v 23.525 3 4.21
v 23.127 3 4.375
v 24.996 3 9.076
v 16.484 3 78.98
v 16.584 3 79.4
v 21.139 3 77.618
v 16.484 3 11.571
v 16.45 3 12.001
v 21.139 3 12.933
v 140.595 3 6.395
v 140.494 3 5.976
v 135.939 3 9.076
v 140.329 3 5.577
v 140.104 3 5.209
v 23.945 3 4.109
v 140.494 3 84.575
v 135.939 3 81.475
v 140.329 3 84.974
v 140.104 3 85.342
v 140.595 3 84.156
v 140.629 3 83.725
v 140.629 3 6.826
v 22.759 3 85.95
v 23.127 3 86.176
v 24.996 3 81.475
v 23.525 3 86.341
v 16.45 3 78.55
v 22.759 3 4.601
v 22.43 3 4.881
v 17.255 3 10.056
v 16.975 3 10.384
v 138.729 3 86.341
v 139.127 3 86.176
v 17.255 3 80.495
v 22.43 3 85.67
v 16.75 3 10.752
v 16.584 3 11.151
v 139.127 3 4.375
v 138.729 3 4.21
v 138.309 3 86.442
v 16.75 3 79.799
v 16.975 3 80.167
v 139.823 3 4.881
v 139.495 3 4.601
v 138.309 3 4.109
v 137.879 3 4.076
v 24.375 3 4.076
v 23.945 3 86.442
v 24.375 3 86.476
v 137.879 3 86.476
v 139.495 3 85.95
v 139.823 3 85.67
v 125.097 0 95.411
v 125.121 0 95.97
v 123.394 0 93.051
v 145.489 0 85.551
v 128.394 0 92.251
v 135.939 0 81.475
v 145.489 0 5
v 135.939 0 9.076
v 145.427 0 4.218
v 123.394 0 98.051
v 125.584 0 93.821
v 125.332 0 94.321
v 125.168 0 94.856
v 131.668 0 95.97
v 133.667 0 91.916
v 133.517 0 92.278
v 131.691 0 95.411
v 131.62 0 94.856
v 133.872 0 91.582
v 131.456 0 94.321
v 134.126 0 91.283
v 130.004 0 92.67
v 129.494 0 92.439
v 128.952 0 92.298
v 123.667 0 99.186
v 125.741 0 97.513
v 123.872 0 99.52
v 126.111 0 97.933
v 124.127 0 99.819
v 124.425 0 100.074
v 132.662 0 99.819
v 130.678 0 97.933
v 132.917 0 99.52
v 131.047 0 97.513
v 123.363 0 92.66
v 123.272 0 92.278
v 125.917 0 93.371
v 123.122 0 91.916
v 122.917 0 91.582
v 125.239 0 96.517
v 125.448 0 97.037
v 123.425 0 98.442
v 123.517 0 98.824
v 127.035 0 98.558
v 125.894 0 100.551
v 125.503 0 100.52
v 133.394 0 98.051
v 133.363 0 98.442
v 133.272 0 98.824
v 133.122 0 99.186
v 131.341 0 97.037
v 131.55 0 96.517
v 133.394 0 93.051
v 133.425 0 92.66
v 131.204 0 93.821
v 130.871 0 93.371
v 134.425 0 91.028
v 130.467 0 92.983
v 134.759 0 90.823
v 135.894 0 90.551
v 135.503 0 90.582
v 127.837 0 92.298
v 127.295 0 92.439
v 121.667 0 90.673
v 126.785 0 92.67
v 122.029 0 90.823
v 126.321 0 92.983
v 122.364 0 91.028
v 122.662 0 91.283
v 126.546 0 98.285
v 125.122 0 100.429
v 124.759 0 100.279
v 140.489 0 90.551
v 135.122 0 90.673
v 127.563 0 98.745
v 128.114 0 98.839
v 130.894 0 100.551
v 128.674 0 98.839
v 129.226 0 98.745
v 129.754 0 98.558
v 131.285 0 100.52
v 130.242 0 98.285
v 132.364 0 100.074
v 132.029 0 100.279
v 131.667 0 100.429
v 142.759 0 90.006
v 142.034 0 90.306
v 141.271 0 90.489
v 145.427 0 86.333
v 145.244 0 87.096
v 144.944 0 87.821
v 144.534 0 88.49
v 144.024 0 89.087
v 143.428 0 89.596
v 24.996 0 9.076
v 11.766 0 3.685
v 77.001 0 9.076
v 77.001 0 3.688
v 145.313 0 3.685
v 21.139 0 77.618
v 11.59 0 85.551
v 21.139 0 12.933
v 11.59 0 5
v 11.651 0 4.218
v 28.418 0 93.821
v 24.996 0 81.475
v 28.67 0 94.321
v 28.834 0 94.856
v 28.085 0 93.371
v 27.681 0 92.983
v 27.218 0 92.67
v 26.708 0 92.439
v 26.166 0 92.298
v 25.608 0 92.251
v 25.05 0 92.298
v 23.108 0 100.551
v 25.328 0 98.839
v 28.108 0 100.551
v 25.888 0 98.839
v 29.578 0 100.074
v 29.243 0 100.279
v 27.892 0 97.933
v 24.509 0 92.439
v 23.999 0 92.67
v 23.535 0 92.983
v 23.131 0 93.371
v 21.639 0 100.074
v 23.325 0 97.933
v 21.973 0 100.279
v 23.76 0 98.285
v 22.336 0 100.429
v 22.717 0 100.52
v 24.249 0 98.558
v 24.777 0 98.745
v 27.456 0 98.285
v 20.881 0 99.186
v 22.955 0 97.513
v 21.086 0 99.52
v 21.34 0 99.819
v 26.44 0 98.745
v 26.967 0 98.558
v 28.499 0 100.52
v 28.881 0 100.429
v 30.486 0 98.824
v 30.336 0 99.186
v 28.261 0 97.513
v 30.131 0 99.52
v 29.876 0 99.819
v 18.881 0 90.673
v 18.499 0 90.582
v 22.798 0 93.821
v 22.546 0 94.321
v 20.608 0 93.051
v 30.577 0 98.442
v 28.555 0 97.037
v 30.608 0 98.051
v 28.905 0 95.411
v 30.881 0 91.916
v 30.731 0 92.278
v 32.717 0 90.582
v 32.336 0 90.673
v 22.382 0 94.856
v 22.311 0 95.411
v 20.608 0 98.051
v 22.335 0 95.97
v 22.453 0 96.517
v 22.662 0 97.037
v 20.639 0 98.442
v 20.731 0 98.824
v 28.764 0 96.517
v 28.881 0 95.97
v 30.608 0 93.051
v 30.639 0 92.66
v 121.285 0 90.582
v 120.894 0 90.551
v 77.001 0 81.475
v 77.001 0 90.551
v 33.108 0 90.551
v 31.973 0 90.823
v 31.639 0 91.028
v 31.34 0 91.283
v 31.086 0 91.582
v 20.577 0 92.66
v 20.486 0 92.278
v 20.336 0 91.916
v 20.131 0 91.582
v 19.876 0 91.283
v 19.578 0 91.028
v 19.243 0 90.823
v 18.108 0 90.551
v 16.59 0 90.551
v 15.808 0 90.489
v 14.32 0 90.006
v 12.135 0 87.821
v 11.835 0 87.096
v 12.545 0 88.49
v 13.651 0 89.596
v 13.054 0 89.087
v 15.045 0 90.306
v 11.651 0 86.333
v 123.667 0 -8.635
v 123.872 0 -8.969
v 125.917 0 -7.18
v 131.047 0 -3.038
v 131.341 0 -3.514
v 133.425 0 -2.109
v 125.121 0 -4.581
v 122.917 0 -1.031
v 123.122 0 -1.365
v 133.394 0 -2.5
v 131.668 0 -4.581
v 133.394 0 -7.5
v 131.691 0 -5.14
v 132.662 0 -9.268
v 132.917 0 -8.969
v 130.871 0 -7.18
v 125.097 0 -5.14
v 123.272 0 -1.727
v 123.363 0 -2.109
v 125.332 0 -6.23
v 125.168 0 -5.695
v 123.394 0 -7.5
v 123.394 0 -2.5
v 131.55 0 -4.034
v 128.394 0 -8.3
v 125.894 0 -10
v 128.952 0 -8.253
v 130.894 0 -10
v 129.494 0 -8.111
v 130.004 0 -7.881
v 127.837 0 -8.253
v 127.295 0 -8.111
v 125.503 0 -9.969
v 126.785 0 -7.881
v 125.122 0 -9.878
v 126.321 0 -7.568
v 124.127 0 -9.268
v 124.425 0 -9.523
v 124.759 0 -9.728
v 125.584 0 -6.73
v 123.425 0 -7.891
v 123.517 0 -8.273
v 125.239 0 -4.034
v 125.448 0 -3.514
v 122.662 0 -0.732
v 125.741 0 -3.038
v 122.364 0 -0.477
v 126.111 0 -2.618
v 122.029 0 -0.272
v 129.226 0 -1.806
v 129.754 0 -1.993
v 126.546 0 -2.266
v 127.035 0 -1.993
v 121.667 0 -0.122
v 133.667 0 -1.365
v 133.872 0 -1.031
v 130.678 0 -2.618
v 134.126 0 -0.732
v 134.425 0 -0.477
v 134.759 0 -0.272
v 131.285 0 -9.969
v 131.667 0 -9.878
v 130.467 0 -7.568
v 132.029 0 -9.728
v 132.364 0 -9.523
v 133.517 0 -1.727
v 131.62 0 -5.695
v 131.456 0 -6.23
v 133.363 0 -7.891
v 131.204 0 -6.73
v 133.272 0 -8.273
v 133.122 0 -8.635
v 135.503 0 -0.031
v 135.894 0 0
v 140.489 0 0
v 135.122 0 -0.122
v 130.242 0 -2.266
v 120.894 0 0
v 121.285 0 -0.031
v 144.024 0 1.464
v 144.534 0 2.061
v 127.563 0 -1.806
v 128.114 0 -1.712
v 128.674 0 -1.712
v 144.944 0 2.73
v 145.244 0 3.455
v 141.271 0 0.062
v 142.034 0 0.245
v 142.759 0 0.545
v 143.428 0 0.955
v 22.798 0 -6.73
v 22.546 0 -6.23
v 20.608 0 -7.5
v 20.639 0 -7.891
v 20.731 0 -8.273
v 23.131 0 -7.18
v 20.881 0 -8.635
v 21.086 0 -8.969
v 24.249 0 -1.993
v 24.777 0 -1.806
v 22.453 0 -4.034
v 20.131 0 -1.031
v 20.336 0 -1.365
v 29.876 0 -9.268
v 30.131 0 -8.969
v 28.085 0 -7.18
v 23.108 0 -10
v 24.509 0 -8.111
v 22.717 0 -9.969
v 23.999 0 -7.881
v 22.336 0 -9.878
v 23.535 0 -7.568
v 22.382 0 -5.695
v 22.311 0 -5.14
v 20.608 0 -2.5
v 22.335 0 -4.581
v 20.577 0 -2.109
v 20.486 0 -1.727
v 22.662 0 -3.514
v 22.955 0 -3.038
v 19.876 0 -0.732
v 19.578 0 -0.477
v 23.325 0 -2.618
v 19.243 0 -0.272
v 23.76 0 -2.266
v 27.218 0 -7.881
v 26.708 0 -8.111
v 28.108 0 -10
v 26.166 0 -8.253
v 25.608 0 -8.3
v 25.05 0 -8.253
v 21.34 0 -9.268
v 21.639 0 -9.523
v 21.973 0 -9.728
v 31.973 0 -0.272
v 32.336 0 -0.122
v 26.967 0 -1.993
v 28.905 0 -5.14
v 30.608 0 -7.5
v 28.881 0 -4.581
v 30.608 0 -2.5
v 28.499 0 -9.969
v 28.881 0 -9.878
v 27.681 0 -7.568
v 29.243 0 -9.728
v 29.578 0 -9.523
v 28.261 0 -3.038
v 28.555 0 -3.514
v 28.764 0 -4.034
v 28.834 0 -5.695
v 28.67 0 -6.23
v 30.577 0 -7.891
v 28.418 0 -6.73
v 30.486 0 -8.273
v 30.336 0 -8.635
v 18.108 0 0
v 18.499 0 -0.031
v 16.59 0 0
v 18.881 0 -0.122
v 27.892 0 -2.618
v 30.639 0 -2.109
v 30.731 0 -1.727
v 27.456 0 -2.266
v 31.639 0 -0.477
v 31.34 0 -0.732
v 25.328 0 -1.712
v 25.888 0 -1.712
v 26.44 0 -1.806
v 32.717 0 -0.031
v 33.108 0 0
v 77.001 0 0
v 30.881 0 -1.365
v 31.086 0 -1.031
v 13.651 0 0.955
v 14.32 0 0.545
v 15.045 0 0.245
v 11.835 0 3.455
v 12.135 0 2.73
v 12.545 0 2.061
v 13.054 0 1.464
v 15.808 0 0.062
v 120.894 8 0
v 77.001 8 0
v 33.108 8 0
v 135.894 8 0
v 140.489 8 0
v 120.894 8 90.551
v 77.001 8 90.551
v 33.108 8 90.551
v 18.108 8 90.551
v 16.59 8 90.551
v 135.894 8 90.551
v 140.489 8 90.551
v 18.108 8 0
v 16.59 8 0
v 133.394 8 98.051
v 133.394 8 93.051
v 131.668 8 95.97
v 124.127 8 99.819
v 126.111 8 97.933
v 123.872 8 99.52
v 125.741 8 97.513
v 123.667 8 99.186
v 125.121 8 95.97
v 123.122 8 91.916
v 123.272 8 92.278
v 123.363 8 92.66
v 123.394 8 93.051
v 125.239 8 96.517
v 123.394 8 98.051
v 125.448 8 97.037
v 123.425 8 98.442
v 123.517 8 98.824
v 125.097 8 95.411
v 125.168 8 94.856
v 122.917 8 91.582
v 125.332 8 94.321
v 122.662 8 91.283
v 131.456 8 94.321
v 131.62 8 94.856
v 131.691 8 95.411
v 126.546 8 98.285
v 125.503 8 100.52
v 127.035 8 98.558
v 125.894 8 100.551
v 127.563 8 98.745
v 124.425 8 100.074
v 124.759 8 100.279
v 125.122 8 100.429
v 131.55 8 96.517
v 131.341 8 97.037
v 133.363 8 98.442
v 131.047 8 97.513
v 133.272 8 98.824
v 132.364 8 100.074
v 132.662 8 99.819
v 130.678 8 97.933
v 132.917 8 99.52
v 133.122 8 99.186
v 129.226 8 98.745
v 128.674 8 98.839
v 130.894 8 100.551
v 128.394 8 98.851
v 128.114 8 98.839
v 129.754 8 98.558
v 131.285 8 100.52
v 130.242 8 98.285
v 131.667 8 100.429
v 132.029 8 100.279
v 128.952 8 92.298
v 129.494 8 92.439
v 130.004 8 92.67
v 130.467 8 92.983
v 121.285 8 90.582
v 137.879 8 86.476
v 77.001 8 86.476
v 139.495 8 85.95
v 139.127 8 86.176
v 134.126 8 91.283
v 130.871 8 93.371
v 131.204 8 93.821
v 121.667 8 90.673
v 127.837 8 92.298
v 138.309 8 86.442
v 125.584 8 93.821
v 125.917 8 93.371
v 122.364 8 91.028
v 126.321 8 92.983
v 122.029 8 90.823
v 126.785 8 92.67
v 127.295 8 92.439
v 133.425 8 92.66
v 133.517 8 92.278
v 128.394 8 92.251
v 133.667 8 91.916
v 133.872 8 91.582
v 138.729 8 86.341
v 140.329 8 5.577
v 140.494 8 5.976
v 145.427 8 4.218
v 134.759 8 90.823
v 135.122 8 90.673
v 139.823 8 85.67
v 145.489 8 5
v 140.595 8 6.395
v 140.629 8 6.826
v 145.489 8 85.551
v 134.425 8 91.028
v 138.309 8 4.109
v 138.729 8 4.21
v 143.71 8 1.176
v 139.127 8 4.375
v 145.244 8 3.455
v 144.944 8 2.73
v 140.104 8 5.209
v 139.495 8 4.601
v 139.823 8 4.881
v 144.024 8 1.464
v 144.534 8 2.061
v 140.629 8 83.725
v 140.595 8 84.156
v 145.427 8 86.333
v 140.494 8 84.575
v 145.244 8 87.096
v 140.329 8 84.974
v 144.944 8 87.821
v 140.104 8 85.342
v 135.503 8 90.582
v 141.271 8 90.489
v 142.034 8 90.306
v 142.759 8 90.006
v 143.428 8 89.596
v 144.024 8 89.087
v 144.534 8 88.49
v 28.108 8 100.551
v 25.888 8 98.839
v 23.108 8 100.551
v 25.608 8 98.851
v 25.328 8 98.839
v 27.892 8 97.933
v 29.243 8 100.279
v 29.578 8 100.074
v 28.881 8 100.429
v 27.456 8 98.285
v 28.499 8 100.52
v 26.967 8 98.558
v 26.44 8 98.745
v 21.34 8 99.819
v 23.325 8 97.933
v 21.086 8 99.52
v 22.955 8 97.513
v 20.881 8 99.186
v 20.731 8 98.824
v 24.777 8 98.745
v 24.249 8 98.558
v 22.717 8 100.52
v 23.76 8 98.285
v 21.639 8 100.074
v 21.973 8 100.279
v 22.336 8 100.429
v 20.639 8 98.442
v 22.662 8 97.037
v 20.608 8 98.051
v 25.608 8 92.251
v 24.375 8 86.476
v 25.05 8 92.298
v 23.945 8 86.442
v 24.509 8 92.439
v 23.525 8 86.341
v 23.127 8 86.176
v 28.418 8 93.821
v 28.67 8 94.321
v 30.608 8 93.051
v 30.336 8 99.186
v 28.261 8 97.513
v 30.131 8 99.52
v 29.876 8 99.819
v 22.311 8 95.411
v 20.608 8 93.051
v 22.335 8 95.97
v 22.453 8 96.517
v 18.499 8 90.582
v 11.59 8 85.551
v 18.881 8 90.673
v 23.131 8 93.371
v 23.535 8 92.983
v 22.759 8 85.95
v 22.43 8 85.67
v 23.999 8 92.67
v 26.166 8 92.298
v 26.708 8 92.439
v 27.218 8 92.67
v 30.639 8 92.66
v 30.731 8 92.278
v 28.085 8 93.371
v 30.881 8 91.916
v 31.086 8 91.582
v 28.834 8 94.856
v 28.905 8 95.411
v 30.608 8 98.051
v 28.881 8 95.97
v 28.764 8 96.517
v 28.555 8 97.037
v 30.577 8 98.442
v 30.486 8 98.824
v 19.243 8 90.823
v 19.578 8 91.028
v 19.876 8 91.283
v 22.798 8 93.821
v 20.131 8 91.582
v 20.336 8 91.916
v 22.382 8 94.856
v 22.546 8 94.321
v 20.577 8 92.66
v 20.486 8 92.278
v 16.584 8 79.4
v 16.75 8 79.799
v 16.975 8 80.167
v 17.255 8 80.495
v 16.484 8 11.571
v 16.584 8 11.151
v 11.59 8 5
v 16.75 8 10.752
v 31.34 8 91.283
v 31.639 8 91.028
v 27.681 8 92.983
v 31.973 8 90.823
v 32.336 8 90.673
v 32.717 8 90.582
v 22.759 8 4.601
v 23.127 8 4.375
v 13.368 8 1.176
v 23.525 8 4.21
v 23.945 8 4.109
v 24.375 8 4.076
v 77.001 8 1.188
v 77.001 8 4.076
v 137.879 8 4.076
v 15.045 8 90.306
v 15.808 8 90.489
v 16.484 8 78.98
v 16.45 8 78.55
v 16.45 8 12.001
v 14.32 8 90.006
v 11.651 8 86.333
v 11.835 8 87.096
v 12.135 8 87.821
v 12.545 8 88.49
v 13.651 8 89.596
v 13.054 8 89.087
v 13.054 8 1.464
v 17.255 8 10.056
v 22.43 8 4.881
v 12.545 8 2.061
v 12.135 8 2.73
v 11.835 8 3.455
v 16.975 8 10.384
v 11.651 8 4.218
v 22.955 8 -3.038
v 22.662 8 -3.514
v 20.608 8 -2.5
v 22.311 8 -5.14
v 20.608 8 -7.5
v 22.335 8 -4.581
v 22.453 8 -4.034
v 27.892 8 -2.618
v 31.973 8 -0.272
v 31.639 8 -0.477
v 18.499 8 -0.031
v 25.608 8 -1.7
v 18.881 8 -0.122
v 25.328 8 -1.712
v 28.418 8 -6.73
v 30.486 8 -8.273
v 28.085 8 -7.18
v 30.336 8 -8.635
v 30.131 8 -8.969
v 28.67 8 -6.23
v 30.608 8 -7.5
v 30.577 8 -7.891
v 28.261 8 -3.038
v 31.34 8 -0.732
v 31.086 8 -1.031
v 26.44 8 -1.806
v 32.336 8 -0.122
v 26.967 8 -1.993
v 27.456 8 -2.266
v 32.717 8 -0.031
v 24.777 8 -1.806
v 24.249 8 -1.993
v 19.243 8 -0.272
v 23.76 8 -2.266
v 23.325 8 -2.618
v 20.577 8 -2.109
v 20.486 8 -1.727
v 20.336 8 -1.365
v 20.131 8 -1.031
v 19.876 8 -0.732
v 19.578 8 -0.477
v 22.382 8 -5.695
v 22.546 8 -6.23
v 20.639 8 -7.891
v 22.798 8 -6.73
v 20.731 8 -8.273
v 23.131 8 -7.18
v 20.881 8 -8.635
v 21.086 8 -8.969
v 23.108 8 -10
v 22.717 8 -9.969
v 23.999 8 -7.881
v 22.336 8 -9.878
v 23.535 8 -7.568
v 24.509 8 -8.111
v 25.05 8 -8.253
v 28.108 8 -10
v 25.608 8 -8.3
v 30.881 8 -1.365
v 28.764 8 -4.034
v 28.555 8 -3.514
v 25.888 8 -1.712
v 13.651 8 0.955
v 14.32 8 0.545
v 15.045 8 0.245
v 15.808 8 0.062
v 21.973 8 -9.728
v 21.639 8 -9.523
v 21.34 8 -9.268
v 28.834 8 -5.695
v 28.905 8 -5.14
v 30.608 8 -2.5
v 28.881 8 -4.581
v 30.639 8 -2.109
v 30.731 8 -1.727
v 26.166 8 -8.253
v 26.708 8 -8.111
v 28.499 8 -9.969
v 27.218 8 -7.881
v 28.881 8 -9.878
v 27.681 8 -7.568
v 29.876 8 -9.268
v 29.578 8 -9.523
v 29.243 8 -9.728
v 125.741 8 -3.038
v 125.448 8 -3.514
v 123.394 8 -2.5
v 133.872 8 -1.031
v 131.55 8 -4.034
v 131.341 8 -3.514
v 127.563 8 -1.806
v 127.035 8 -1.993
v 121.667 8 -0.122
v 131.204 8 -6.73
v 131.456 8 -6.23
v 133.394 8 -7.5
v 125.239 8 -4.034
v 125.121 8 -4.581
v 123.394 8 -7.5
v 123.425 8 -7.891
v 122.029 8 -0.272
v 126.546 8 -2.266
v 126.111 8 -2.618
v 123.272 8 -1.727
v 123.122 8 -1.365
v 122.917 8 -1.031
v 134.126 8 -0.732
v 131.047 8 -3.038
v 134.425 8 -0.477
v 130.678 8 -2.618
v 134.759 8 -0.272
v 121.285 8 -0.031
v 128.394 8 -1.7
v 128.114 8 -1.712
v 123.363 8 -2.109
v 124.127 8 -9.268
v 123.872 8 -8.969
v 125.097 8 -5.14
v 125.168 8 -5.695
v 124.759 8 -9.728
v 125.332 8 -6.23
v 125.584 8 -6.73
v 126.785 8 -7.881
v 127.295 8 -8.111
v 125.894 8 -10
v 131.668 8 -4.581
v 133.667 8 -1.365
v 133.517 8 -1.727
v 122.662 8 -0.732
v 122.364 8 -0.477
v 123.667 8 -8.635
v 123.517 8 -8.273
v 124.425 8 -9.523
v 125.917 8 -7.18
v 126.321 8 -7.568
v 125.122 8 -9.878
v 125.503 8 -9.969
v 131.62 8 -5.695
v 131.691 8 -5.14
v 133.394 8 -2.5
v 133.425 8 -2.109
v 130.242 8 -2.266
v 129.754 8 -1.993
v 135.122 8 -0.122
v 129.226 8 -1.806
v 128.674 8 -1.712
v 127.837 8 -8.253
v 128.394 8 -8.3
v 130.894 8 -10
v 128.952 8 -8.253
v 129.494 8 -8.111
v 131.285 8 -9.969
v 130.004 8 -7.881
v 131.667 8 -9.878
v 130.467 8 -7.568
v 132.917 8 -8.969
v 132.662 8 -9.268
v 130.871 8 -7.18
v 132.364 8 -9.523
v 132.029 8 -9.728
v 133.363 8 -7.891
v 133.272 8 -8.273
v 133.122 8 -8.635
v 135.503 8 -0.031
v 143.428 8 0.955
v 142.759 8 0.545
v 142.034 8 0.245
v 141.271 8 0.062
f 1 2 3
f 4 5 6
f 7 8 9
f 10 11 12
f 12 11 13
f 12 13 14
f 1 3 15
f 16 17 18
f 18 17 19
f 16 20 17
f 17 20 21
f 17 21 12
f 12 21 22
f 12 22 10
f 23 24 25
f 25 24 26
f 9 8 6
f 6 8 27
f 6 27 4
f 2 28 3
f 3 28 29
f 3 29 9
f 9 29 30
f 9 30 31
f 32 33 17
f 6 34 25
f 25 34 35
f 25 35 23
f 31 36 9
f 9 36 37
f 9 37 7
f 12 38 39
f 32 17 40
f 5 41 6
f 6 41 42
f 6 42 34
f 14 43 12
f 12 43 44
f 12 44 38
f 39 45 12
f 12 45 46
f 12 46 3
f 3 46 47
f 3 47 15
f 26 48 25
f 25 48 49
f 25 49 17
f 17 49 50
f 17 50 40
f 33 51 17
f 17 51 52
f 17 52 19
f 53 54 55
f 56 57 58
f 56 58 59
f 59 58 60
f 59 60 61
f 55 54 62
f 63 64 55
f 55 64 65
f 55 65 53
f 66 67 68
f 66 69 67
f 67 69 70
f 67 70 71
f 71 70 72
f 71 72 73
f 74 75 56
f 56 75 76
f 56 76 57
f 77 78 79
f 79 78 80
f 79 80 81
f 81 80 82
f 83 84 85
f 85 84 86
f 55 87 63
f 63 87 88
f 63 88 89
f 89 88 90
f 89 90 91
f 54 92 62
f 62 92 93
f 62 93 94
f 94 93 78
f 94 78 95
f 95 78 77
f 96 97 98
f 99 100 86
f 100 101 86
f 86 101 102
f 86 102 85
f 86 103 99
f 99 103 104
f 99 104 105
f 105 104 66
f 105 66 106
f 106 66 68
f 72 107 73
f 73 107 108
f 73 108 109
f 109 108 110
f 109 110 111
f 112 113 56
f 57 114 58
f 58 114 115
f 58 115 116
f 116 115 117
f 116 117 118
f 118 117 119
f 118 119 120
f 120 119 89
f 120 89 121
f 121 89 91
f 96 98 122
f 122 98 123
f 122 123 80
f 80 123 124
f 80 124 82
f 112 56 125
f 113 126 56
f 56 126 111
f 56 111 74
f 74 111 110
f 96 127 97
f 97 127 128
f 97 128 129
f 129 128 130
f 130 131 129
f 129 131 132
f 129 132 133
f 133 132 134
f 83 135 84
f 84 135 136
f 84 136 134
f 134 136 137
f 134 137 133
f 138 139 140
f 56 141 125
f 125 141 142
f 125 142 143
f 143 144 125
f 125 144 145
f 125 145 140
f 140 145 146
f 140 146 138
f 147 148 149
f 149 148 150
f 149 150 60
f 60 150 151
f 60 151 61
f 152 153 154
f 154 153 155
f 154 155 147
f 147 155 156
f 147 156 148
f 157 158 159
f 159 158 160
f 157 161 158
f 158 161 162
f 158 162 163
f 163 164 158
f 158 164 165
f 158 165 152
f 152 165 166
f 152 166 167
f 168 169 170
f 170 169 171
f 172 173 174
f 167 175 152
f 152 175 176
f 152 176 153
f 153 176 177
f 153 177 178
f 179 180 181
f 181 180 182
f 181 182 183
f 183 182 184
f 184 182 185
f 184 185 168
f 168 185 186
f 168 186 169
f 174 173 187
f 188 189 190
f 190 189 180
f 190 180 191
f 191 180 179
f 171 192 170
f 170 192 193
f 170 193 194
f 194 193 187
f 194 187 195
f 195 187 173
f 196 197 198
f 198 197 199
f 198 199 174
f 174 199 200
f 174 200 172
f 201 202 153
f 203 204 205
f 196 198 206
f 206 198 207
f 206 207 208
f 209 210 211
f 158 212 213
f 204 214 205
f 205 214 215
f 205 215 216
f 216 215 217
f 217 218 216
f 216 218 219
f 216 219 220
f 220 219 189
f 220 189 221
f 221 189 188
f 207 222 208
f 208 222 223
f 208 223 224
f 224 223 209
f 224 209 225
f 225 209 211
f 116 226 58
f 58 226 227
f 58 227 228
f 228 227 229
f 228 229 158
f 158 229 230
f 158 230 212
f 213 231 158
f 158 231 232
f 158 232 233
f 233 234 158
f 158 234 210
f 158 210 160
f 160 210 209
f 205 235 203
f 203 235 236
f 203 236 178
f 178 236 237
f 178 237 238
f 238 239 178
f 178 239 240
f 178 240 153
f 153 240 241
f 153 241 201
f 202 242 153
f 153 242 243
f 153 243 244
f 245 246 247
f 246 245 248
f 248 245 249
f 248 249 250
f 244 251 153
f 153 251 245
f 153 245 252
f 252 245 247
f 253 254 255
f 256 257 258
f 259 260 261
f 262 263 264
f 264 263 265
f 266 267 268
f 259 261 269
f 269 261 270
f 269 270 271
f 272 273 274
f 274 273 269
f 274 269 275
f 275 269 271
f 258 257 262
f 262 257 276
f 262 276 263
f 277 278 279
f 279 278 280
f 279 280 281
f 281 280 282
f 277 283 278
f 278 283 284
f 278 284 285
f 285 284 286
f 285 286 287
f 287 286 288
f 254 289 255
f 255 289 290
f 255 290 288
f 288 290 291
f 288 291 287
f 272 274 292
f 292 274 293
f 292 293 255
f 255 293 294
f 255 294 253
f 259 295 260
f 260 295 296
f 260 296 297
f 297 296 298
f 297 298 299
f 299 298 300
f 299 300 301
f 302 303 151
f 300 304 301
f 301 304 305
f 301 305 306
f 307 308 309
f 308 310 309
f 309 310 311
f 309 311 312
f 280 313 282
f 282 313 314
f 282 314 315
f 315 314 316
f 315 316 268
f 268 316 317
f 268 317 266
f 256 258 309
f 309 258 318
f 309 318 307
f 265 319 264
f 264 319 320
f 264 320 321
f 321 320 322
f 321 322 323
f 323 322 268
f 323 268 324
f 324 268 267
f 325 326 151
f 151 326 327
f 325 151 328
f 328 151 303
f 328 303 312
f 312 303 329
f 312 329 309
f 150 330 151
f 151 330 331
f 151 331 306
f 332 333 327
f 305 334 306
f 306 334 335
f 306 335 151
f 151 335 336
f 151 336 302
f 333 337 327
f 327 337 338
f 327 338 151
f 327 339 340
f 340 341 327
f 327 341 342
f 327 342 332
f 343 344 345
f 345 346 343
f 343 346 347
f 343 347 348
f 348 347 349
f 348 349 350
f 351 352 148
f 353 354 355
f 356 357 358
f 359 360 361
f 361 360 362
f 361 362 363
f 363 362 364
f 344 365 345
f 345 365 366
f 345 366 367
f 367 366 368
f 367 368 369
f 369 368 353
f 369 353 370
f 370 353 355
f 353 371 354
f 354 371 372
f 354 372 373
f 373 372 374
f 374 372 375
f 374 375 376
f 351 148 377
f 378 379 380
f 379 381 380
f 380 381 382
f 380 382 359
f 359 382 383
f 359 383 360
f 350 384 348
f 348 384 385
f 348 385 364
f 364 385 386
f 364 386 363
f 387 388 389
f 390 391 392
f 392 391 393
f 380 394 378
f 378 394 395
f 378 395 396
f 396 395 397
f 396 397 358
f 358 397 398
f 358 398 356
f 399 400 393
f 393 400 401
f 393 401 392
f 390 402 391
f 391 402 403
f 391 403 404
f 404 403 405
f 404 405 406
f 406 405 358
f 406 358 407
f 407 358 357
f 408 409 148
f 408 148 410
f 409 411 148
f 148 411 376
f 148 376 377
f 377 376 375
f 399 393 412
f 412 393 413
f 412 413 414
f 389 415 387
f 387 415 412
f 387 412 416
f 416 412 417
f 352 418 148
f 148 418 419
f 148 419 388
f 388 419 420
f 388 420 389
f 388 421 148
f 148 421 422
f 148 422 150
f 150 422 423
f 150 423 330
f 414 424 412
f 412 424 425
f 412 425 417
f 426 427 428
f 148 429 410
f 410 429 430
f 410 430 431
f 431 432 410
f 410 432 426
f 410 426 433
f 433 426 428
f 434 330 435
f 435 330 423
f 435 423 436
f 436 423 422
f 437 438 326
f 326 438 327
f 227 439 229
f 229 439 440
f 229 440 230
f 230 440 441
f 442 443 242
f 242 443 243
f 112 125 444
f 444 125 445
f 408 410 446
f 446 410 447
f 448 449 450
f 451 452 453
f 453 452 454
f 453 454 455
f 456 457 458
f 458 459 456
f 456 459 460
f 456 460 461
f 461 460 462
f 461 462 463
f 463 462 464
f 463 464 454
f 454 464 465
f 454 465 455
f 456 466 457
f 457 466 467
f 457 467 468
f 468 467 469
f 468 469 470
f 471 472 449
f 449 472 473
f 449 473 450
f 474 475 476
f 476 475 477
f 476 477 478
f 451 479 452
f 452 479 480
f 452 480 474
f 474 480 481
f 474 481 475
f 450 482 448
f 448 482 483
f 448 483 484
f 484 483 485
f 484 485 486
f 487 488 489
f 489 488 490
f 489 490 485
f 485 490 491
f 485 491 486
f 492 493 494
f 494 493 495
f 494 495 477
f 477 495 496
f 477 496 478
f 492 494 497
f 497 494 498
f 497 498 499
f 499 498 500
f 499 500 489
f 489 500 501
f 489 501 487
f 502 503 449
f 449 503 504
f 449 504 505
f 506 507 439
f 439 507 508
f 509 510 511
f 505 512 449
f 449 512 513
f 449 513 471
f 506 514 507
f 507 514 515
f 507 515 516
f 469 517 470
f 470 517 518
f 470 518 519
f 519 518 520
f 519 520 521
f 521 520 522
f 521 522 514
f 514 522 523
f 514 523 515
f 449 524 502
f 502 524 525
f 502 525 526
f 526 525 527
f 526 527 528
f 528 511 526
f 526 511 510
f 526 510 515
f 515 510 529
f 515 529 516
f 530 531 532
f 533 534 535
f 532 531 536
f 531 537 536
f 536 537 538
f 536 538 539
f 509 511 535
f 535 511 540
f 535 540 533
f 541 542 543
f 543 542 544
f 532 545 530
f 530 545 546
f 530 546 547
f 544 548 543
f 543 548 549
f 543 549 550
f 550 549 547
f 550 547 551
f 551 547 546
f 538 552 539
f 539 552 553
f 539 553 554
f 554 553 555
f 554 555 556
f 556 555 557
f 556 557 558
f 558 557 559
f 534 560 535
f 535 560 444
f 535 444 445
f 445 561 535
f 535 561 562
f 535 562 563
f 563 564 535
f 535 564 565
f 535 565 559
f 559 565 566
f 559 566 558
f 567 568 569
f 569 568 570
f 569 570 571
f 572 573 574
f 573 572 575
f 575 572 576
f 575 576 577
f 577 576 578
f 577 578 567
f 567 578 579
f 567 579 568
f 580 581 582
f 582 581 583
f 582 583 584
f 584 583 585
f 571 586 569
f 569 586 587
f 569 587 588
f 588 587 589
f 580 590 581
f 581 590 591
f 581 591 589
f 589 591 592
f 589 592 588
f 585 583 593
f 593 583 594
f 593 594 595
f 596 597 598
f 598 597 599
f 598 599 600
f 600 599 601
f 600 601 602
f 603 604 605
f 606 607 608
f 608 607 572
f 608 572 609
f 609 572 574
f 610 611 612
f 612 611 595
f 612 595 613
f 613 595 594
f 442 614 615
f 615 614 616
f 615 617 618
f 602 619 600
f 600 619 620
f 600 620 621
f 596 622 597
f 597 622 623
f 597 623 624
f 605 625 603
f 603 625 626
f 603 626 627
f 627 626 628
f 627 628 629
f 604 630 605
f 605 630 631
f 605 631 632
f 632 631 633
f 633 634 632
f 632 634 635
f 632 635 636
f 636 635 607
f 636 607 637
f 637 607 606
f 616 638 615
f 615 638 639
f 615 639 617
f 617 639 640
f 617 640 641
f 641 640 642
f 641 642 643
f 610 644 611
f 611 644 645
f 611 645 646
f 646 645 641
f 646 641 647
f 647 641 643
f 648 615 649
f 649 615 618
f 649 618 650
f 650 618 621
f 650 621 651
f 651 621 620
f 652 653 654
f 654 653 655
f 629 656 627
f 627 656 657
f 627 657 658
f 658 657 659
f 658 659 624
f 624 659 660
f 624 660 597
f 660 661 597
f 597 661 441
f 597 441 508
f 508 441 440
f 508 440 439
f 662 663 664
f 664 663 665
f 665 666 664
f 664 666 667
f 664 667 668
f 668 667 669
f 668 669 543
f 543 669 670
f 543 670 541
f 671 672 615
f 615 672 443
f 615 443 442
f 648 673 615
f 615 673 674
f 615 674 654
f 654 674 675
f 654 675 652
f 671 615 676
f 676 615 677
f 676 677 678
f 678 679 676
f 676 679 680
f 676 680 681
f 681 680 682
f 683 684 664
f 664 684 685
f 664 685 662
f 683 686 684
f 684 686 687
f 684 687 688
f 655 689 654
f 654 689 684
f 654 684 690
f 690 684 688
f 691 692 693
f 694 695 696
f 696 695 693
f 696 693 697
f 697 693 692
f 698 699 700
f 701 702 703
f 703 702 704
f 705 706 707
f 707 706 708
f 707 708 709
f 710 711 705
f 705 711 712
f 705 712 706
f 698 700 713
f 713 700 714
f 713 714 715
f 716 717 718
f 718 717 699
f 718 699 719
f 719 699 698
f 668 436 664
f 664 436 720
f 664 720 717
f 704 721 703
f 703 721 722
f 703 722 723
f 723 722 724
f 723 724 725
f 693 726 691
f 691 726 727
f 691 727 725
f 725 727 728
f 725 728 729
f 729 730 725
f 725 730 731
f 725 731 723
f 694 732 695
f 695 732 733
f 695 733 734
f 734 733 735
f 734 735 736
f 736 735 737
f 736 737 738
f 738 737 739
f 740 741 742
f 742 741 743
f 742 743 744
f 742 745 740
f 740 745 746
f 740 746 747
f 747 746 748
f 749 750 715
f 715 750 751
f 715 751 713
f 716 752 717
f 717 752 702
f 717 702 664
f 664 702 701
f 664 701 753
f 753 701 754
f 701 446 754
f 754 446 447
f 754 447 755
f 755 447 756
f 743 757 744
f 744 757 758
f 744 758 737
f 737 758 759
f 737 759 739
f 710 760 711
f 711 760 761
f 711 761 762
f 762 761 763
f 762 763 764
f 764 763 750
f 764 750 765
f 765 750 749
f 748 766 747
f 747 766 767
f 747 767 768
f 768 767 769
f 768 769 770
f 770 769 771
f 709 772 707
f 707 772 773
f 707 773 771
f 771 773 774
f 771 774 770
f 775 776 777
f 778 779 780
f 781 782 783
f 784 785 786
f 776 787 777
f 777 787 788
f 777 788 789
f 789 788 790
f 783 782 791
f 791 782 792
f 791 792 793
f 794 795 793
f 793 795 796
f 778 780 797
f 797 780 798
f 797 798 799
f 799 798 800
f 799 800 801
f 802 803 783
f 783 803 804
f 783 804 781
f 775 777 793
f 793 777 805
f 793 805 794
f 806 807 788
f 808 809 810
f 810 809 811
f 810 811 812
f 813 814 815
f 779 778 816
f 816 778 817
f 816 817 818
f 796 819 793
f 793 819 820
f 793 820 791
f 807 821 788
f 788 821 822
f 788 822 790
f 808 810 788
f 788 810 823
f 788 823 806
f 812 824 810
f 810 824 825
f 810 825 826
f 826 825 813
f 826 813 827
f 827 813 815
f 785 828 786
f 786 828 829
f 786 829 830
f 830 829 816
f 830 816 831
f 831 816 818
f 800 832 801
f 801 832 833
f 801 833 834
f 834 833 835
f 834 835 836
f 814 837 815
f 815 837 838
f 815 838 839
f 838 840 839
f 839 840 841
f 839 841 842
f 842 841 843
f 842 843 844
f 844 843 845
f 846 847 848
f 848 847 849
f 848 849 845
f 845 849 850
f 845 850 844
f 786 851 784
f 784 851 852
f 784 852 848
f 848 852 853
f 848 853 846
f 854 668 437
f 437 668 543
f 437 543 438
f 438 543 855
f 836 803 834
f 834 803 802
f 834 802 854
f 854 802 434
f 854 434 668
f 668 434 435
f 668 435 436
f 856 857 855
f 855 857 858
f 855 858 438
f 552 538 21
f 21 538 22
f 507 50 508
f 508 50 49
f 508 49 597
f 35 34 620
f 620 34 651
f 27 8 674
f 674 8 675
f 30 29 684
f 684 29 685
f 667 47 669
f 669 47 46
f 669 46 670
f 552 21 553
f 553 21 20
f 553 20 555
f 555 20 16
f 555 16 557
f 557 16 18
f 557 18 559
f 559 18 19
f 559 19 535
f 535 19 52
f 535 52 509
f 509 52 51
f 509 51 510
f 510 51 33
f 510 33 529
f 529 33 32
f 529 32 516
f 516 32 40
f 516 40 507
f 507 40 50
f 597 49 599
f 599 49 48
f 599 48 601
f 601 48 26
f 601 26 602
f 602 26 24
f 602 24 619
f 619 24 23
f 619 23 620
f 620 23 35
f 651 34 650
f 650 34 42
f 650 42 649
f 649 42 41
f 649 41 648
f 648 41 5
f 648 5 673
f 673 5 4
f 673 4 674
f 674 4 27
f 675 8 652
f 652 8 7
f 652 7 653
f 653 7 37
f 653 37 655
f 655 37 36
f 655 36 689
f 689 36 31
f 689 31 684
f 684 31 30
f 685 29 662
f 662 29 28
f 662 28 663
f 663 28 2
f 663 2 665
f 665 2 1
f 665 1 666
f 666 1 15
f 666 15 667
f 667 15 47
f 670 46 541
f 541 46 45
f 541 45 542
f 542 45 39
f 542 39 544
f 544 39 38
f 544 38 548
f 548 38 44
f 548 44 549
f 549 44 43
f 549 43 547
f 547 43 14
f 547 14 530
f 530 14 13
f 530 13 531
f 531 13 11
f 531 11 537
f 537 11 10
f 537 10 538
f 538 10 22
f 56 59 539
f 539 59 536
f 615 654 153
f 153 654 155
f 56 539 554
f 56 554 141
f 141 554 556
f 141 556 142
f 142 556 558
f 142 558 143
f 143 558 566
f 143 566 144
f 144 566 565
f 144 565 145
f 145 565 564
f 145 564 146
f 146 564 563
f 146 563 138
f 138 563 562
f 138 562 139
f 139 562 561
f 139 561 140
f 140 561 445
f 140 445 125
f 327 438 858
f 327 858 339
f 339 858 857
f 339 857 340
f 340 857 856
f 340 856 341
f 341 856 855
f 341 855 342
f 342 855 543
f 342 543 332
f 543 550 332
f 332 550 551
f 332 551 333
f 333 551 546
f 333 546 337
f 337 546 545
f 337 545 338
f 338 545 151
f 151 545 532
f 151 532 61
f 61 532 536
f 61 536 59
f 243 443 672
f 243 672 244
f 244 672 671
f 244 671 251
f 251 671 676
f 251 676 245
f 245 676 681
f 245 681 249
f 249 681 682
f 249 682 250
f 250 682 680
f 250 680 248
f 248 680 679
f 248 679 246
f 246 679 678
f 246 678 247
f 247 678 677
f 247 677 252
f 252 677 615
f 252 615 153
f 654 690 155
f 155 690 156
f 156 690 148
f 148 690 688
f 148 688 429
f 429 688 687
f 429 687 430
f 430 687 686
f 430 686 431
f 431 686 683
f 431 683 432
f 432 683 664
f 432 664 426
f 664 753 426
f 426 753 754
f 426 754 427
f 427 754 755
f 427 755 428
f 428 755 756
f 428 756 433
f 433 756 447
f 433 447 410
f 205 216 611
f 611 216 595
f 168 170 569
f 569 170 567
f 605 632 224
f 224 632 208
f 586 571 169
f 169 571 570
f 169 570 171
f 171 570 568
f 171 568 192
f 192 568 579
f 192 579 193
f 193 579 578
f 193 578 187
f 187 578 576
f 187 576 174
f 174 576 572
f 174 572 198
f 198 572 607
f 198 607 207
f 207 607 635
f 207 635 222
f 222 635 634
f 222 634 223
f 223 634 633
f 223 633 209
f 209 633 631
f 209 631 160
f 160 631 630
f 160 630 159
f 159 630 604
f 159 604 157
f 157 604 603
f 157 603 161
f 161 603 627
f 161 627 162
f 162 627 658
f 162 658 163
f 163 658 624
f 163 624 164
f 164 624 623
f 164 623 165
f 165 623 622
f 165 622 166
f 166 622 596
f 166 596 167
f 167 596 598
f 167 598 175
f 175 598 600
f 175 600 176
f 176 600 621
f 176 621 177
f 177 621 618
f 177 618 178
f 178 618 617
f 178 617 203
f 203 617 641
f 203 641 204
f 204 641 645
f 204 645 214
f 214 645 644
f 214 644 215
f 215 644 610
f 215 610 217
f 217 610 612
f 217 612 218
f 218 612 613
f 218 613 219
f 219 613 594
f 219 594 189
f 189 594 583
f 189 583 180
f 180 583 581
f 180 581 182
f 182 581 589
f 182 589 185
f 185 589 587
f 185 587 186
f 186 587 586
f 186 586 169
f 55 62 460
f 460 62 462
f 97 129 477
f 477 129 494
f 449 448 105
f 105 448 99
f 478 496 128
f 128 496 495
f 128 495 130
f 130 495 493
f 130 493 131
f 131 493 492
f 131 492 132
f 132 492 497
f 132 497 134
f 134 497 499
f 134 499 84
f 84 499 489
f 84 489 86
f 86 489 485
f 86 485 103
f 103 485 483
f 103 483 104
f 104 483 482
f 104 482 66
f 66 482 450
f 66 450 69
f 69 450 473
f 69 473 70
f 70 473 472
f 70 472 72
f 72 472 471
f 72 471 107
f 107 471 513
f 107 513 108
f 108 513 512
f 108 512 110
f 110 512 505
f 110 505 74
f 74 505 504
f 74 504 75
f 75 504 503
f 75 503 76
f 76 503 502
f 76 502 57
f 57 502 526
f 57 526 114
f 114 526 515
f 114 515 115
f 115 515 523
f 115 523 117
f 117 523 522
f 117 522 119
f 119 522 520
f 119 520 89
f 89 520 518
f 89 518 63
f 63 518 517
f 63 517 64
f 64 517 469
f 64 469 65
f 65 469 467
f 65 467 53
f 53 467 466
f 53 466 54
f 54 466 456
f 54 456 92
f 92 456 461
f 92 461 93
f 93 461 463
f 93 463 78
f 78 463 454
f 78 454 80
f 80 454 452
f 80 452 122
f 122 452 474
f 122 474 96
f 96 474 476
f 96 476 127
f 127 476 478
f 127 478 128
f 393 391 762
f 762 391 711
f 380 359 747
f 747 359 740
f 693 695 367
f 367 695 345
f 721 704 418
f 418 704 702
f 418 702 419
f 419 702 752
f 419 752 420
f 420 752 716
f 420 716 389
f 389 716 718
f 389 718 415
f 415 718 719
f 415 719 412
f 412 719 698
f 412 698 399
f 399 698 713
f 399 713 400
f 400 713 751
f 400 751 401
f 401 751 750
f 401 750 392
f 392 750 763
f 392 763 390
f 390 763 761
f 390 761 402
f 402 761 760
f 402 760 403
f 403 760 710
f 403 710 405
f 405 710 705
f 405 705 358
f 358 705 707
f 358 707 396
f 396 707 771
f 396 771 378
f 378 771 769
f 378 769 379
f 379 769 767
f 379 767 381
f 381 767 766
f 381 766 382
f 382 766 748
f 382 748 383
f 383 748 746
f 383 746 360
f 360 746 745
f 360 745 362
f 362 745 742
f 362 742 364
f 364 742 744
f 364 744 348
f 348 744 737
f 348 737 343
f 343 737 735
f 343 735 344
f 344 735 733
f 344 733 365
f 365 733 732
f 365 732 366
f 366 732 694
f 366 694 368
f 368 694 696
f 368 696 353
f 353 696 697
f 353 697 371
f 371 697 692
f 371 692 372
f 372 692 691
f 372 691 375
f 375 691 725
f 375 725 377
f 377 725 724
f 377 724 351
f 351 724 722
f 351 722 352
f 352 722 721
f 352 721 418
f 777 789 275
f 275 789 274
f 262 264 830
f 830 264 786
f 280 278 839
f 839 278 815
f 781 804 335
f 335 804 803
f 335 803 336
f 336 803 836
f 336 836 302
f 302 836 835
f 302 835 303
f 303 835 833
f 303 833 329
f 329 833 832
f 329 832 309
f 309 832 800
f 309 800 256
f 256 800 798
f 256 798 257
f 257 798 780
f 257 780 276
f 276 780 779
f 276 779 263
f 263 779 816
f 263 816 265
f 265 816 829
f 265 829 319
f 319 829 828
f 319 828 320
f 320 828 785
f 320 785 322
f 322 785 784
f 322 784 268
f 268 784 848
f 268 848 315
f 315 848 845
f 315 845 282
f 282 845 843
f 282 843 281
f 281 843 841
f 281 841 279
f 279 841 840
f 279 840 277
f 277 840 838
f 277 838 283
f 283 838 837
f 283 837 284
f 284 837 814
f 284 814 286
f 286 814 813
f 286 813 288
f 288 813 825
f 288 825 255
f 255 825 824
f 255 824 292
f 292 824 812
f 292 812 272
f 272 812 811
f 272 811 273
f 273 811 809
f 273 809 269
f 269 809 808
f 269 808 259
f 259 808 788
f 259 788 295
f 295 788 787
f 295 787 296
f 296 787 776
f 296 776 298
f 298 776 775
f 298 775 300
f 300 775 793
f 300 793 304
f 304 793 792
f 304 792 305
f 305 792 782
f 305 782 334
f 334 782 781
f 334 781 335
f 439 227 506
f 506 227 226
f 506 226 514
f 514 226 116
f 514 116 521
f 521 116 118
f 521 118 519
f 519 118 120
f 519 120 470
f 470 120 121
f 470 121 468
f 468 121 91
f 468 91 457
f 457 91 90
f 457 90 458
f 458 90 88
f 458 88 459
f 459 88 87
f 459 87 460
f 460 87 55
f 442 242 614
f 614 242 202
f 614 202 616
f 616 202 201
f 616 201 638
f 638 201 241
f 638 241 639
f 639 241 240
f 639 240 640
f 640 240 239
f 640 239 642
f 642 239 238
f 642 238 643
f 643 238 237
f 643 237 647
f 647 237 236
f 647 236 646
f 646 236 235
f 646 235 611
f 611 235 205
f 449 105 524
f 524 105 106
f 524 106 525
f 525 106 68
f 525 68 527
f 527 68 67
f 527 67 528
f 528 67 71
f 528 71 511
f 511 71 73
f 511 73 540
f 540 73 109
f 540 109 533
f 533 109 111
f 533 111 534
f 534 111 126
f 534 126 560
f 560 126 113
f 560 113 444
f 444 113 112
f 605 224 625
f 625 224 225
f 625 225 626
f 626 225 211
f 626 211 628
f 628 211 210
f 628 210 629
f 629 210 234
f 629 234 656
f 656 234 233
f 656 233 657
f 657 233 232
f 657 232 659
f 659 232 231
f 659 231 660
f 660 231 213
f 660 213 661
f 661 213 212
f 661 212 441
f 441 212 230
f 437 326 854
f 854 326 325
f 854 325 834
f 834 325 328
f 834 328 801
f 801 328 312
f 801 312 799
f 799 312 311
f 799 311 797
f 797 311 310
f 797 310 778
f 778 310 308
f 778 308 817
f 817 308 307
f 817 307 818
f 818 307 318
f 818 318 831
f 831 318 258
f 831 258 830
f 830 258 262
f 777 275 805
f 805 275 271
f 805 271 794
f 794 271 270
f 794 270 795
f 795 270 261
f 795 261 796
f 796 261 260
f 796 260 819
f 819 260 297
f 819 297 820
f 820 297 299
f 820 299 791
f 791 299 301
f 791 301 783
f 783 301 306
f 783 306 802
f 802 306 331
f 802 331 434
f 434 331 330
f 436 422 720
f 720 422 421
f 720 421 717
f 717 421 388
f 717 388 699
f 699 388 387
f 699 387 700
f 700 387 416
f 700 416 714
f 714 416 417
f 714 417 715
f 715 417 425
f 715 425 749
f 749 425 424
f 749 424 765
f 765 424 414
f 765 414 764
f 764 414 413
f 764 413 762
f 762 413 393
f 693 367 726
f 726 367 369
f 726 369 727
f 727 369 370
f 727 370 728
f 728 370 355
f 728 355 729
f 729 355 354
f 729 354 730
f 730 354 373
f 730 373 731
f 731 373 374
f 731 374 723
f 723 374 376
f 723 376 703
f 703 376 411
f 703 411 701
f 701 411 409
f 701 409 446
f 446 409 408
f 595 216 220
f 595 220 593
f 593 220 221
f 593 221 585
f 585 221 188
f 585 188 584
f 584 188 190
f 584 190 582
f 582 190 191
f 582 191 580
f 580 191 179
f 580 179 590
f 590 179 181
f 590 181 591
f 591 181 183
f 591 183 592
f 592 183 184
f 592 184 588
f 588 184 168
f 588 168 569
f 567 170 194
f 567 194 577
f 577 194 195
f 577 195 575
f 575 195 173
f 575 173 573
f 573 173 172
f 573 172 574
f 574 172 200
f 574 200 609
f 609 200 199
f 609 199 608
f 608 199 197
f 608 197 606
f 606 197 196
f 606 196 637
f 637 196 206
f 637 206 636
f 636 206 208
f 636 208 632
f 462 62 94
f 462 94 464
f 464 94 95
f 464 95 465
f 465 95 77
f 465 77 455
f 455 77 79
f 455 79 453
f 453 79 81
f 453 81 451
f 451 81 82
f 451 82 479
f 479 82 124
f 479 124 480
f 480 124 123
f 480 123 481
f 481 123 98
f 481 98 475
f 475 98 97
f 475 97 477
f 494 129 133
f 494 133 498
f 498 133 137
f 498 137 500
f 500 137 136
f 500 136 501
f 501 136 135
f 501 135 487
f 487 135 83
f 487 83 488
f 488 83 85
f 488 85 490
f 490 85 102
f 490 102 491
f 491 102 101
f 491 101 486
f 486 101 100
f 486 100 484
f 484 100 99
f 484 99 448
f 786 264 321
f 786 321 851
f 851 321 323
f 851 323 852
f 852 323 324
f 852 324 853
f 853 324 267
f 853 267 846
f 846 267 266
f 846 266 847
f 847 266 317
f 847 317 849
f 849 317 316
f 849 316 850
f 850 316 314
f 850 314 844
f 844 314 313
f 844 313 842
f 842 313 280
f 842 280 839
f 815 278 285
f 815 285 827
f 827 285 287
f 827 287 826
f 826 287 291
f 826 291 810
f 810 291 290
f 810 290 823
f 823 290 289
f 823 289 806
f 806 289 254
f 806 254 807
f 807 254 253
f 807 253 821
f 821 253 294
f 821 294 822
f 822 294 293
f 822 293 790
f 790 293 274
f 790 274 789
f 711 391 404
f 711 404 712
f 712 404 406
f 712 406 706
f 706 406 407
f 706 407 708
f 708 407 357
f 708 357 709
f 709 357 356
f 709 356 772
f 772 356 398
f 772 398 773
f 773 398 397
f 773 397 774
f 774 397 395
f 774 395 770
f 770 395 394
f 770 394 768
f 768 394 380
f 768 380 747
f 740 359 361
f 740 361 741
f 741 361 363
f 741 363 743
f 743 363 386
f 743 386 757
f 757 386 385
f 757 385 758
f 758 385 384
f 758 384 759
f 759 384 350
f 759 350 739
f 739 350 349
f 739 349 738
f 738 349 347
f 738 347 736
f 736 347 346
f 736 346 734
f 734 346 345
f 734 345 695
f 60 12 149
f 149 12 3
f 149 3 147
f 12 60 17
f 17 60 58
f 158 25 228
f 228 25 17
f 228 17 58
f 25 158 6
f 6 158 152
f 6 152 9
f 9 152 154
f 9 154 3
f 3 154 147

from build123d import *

# Parameters (mm, degrees)
SKETCH1_W            = 157.0786
SKETCH1_H            = 90.551
BOSS_EXTRUDE1_DEPTH  = 8
CUT_EXTRUDE21_DEPTH  = 5
FILLET8_R            = 2.75
SKETCH29_W           = 11.58993
SKETCH29_H           = 90.551
CUT_EXTRUDE25_DEPTH  = 182.486005463
FILLET9_R            = 5
SKETCH36_W           = 10
SKETCH36_H           = 10
SKETCH36_R           = 3.3
BOSS_EXTRUDE10_DEPTH = 8
FILLET10_R           = 2.5
CUT_EXTRUDE26_DEPTH  = 3


with BuildPart() as part:
    # Sketch1 → Boss-Extrude1 (new body)
    with BuildSketch(Plane(origin=(0, 0, 0), x_dir=(1, 0, 0), z_dir=(0, 1, 0))):
        with Locations((78.5393, -45.2755)):
            Rectangle(SKETCH1_W, SKETCH1_H)
    extrude(amount=BOSS_EXTRUDE1_DEPTH)

    # Sketch23 → Cut-Extrude21 (cut)
    with BuildSketch(Plane(origin=(0, 8, 0), x_dir=(1, 0, 0), z_dir=(0, 1, 0))):
        Polygon((140.6288, -86.4755), (23.2359173, -86.4755), (16.4498, -79.6893827), (16.4498, -10.8616173), (23.2359173, -4.0755), (140.6288, -4.0755), align=None)
    extrude(amount=-CUT_EXTRUDE21_DEPTH, mode=Mode.SUBTRACT)

    # Fillet8
    fillet8_edges = [part.edges().sort_by_distance(p)[0] for p in [
        (140.6288, 5.5, 4.0755),
        (140.6288, 5.5, 86.4755),
        (23.2359173, 5.5, 86.4755),
        (16.4498, 5.5, 79.6893827),
        (16.4498, 5.5, 10.8616173),
        (23.2359173, 5.5, 4.0755),
    ]]
    fillet(fillet8_edges, radius=FILLET8_R)

    # Sketch29 → Cut-Extrude25 (cut, through all)
    with BuildSketch(Plane(origin=(0, 8, 0), x_dir=(1, 0, 0), z_dir=(0, 1, 0))):
        with Locations((151.283635, -45.2755)):
            Rectangle(SKETCH29_W, SKETCH29_H)
        with Locations((5.794965, -45.2755)):
            Rectangle(SKETCH29_W, SKETCH29_H)
    extrude(amount=-CUT_EXTRUDE25_DEPTH, mode=Mode.SUBTRACT)

    # Fillet9
    fillet9_edges = [part.edges().sort_by_distance(p)[0] for p in [
        (145.48867, 4, 90.551),
        (145.48867, 4, 0),
        (11.58993, 4, 0),
        (11.58993, 4, 90.551),
    ]]
    fillet(fillet9_edges, radius=FILLET9_R)

    # Sketch36 → Boss-Extrude10 (add)
    # profile 1 of 4: a face of its own
    with BuildSketch(Plane.XZ):
        with Locations((25.6082, 95.551)):
            Rectangle(SKETCH36_W, SKETCH36_H)
        with Locations(Location((25.6082, 95.551, 0), (0, 0, 270))):
            Circle(SKETCH36_R, mode=Mode.SUBTRACT)
    # profile 2 of 4: a face of its own
    with BuildSketch(Plane.XZ):
        with Locations((128.3942697, 95.551)):
            Rectangle(SKETCH36_W, SKETCH36_H)
        with Locations(Location((128.3942697, 95.551, 0), (0, 0, 270))):
            Circle(SKETCH36_R, mode=Mode.SUBTRACT)
    # profile 3 of 4: a face of its own
    with BuildSketch(Plane.XZ):
        with Locations((25.6082, -5)):
            Rectangle(SKETCH36_W, SKETCH36_H)
        with Locations(Location((25.6082, -5, 0), (0, 0, 270))):
            Circle(SKETCH36_R, mode=Mode.SUBTRACT)
    # profile 4 of 4: a face of its own
    with BuildSketch(Plane.XZ):
        with Locations((128.3942697, -5)):
            Rectangle(SKETCH36_W, SKETCH36_H)
        with Locations(Location((128.3942697, -5, 0), (0, 0, 270))):
            Circle(SKETCH36_R, mode=Mode.SUBTRACT)
    extrude(amount=-BOSS_EXTRUDE10_DEPTH)

    # Fillet10
    fillet10_edges = [part.edges().sort_by_distance(p)[0] for p in [
        (20.6082, 4, 90.551),
        (20.6082, 4, 100.551),
        (30.6082, 4, 100.551),
        (30.6082, 4, 90.551),
        (123.3942697, 4, 90.551),
        (123.3942697, 4, 100.551),
        (133.3942697, 4, 100.551),
        (133.3942697, 4, 90.551),
        (30.6082, 4, 0),
        (30.6082, 4, -10),
        (20.6082, 4, -10),
        (20.6082, 4, 0),
        (123.3942697, 4, -10),
        (123.3942697, 4, 0),
        (133.3942697, 4, 0),
        (133.3942697, 4, -10),
    ]]
    fillet(fillet10_edges, radius=FILLET10_R)

    # Sketch37 → Cut-Extrude26 (cut)
    with BuildSketch(Plane(origin=(0, 3, 0), x_dir=(1, 0, 0), z_dir=(0, 1, 0))):
        Polygon((21.1393, -77.618314888), (24.996485112, -81.4755), (135.9393, -81.4755), (135.9393, -9.0755), (24.996485112, -9.0755), (21.1393, -12.932685112), align=None)
    extrude(amount=-CUT_EXTRUDE26_DEPTH, mode=Mode.SUBTRACT)


solid = part.part
